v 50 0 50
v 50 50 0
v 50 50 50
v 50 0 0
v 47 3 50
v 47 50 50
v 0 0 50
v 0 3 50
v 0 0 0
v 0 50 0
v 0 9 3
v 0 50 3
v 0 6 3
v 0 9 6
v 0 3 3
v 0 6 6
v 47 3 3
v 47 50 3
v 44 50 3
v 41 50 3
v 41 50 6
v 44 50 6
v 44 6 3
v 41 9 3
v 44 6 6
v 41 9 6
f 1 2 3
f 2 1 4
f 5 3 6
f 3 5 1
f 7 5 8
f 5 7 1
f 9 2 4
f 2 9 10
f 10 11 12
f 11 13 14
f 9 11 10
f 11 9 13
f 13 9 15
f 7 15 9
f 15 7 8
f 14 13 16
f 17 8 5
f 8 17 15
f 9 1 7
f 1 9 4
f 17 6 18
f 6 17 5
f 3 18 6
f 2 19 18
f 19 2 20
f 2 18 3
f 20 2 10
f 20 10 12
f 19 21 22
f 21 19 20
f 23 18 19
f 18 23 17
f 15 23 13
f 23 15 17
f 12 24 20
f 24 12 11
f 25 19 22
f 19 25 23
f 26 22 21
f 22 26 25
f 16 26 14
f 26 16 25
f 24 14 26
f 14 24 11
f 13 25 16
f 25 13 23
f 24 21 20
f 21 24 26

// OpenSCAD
// file: enclosure_lib.scad
module SimpleCorner(wallWidth = 3,
                    totalWidth = 50,
                    totalHeight = 50,
                    totalDepth = 50,
                    gutterWidth = 3)
{
    // back wall
    cube([totalWidth,wallWidth,totalHeight]);
    // side wall
    translate([totalWidth,0,0])
        rotate([0,0,90])
            cube([totalDepth,wallWidth,totalHeight]);
    // base
    translate([0,totalDepth,0])
        rotate([90, 0, 0])
            cube([totalWidth,
                  wallWidth,
                  totalDepth]);
    // back gutter
    translate([0,
               wallWidth + gutterWidth,
               wallWidth * 2])
        rotate([0,90,0])
            cube([wallWidth, 
                  wallWidth, 
                  totalWidth - wallWidth - gutterWidth]);
    // side gutter
    translate([totalWidth - 2 * wallWidth - gutterWidth,
               totalDepth,
               wallWidth])
        rotate([90,0,0])
            cube([wallWidth, 
                  wallWidth, 
                  totalDepth - wallWidth - gutterWidth]);
    // gutter fill
    cube(3);
}
module Cone(holeRadius = 3)
{
    centerRadius    = 3;
    centerHeight    = 2;
    masterRadius    = 18;
    totalHeight     = 3;
    tanAlpha        = totalHeight / (masterRadius - centerRadius);
    holeHeight      = tanAlpha * (masterRadius - holeRadius);
    rotate_extrude()
        polygon(points=[
            [0, 0],
            [masterRadius, 0],
            [holeRadius, holeHeight],
            [holeRadius, 1],
            [0, 1]
        ]);
}
module Base(width = 50,
       depth = 50,
       halfHeight = 3)
{
    cube([width, depth, halfHeight]);
    translate([width / 2, depth / 2, halfHeight])
        Cone(3.5);
}

module BasedCorner(wallWidth = 3,
                   width = 50,
                   height = 50,
                   depth = 50,
                   gutterWidth = 3.4)
{
    translate([0, 0, wallWidth])
        union() {
            SimpleCorner(wallWidth, 
                         width, 
                         height - wallWidth, 
                         depth,
                         gutterWidth);
            translate([0,0, -wallWidth])
                difference() {
                    cube([width, depth, wallWidth]);
                    translate([width/2, depth/2, -.01])
                        Cone();
            }
        }
}

module top_profile(gutterWidth = 3) 
{
    polygon([
        [0, 0],
        [0, 9],
        [6, 9],
        [6, 6],
        [21,6],
        [21,3],
        [6 + gutterWidth, 3],
        [6 + gutterWidth, 0],
        [3 + gutterWidth, 0],
        [3 + gutterWidth, 3],
        [3, 3],
        [3, 0],
    ]);
}

import("/home/eugenio/repos/3dmodels/enclosure/leg_based_enclosure__.stl");
import("/home/eugenio/repos/3dmodels/enclosure/leg_based_enclosure__.stl");
// main file
use <enclosure_lib.scad>

wall_h = 3;
h=50;
d=50;
w=50;

SimpleCorner(wall_h, w, h, d);
